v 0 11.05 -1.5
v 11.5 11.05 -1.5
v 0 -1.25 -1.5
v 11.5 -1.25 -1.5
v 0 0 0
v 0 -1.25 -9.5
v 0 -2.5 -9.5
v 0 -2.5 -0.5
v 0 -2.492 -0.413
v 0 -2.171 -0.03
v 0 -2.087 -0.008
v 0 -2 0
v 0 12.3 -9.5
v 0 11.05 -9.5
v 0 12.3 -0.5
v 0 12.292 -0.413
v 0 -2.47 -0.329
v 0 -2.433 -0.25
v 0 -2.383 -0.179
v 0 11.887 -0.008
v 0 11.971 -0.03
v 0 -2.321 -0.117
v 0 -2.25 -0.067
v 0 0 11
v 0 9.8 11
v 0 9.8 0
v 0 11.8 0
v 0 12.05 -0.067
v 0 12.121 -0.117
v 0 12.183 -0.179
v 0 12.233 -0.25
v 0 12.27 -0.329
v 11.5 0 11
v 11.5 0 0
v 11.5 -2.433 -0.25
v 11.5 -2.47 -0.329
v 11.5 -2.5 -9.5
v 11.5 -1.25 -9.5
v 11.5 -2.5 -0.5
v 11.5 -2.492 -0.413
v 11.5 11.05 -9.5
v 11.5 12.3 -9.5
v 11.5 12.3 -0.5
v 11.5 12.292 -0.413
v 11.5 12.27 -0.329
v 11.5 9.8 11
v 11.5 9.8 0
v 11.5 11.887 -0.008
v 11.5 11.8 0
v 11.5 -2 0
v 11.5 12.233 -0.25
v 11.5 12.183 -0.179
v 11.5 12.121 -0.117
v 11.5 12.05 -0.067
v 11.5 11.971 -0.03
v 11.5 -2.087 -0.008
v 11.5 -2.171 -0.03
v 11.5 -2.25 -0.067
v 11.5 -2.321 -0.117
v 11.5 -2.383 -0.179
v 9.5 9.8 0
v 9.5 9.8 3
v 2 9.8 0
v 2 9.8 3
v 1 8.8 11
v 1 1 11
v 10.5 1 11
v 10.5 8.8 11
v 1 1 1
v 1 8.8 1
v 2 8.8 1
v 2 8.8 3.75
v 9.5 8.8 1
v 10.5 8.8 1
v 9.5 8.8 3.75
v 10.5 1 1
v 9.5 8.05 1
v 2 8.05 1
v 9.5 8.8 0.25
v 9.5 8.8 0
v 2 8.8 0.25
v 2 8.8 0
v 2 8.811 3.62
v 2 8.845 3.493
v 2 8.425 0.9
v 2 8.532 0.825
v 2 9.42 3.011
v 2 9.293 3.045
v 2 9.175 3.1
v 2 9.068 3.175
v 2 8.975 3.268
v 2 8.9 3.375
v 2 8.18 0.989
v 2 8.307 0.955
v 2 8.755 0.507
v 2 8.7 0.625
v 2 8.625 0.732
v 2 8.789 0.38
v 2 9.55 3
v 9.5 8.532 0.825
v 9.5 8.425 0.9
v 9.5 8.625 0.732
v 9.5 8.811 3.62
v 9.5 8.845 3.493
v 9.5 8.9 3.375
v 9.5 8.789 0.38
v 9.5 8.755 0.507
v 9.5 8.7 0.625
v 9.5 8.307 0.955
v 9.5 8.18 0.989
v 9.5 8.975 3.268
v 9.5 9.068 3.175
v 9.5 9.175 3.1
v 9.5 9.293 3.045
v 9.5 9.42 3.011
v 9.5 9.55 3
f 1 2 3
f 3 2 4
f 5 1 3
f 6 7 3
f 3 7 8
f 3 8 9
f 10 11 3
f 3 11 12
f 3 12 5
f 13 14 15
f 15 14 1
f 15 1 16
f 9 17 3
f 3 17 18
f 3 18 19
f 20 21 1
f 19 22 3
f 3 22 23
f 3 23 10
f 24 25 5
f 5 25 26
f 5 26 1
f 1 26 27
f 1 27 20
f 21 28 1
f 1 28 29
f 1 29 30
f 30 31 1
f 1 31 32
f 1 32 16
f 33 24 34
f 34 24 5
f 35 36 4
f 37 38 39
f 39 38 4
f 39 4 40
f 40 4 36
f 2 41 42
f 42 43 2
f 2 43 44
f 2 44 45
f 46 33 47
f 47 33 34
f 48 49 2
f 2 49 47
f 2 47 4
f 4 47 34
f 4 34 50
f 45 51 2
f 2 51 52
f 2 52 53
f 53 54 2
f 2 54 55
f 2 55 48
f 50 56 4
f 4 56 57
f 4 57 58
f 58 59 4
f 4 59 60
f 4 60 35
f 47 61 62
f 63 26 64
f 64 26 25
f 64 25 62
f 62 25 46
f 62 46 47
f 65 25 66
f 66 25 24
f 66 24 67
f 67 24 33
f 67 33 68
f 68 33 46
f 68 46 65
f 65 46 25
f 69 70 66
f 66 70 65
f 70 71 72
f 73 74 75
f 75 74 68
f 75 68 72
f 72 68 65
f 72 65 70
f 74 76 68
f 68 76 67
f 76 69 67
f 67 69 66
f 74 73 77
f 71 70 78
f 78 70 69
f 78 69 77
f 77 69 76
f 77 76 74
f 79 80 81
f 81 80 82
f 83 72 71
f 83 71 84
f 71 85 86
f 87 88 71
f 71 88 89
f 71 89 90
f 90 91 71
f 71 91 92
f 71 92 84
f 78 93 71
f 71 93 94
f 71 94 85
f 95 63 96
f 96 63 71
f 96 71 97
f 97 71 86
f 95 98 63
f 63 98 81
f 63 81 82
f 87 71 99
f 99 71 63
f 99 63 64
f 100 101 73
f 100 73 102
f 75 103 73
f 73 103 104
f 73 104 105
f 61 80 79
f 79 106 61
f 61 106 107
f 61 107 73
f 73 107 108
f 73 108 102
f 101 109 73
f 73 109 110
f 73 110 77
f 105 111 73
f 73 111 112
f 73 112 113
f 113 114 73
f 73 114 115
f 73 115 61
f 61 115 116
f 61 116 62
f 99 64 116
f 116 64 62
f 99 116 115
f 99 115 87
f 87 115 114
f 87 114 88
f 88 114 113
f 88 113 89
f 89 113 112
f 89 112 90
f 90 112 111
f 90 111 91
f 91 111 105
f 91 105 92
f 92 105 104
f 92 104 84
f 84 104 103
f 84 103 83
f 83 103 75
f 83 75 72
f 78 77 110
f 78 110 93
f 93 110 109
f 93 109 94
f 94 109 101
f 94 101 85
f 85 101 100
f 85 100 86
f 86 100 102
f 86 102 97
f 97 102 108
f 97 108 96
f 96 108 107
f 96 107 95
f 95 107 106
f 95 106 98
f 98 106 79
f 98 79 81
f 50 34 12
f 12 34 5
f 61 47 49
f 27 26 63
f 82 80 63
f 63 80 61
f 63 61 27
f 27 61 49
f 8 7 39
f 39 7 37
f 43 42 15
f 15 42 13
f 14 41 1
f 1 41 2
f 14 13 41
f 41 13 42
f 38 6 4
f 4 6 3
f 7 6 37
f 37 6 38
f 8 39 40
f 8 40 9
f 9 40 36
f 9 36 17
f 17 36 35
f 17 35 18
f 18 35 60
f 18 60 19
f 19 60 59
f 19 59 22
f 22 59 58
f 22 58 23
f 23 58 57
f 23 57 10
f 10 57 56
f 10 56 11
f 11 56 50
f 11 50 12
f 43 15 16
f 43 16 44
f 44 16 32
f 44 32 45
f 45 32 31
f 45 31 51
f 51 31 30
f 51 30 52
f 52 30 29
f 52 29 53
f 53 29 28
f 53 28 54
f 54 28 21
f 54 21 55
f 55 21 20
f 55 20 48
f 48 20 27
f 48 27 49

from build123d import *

# Parameters (mm, degrees)
ESQUISSE1_W             = 11.5
ESQUISSE1_H             = 9.8
BOSS_EXTRU_1_DEPTH      = 11
ESQUISSE2_W             = 9.5
ESQUISSE2_H             = 7.8
ENL_V_MAT_EXTRU_1_DEPTH = 10
ESQUISSE3_W             = 7.5
ESQUISSE3_H             = 3
ENL_V_MAT_EXTRU_2_DEPTH = 1
CONG_1_R                = 0.75
ESQUISSE4_W             = 11.5
ESQUISSE4_H             = 14.8
BOSS_EXTRU_2_DEPTH      = 1.5
ESQUISSE5_W             = 11.5
ESQUISSE5_H             = 1.25
BOSS_EXTRU_3_DEPTH      = 8
CONG_2_R                = 0.5


with BuildPart() as part:
    # Esquisse1 → Boss.-Extru.1 (new body)
    with BuildSketch(Plane.XY):
        with Locations((5.75, 4.9)):
            Rectangle(ESQUISSE1_W, ESQUISSE1_H)
    extrude(amount=BOSS_EXTRU_1_DEPTH)

    # Esquisse2 → Enlèv. mat.-Extru.1 (cut)
    with BuildSketch(Plane.XY.offset(11)):
        with Locations((5.75, 4.9)):
            Rectangle(ESQUISSE2_W, ESQUISSE2_H)
    extrude(amount=-ENL_V_MAT_EXTRU_1_DEPTH, mode=Mode.SUBTRACT)

    # Esquisse3 → Enlèv. mat.-Extru.2 (cut)
    with BuildSketch(Plane(origin=(0, 9.8, 0), x_dir=(1, 0, 0), z_dir=(0, 1, 0))):
        with Locations((5.75, -1.5)):
            Rectangle(ESQUISSE3_W, ESQUISSE3_H)
    extrude(amount=-ENL_V_MAT_EXTRU_2_DEPTH, mode=Mode.SUBTRACT)

    # Congé1
    cong_1_edges = [part.edges().sort_by_distance(p)[0] for p in [
        (5.75, 8.8, 1),
        (5.75, 8.8, 3),
    ]]
    fillet(cong_1_edges, radius=CONG_1_R)

    # Esquisse4 → Boss.-Extru.2 (add)
    with BuildSketch(Plane(origin=(0, 0, 0), x_dir=(-1, 0, 0), z_dir=(0, 0, -1))):
        with Locations((-5.75, 4.9)):
            Rectangle(ESQUISSE4_W, ESQUISSE4_H)
    extrude(amount=BOSS_EXTRU_2_DEPTH)

    # Esquisse5 → Boss.-Extru.3 (add)
    with BuildSketch(Plane(origin=(0, 0, -1.5), x_dir=(-1, 0, 0), z_dir=(0, 0, -1))):
        with Locations((-5.75, 11.675)):
            Rectangle(ESQUISSE5_W, ESQUISSE5_H)
        with Locations((-5.75, -1.875)):
            Rectangle(ESQUISSE5_W, ESQUISSE5_H)
    extrude(amount=BOSS_EXTRU_3_DEPTH)

    # Congé2
    cong_2_edges = [part.edges().sort_by_distance(p)[0] for p in [
        (5.75, -2.5, 0),
        (5.75, 12.3, 0),
    ]]
    fillet(cong_2_edges, radius=CONG_2_R)


solid = part.part
